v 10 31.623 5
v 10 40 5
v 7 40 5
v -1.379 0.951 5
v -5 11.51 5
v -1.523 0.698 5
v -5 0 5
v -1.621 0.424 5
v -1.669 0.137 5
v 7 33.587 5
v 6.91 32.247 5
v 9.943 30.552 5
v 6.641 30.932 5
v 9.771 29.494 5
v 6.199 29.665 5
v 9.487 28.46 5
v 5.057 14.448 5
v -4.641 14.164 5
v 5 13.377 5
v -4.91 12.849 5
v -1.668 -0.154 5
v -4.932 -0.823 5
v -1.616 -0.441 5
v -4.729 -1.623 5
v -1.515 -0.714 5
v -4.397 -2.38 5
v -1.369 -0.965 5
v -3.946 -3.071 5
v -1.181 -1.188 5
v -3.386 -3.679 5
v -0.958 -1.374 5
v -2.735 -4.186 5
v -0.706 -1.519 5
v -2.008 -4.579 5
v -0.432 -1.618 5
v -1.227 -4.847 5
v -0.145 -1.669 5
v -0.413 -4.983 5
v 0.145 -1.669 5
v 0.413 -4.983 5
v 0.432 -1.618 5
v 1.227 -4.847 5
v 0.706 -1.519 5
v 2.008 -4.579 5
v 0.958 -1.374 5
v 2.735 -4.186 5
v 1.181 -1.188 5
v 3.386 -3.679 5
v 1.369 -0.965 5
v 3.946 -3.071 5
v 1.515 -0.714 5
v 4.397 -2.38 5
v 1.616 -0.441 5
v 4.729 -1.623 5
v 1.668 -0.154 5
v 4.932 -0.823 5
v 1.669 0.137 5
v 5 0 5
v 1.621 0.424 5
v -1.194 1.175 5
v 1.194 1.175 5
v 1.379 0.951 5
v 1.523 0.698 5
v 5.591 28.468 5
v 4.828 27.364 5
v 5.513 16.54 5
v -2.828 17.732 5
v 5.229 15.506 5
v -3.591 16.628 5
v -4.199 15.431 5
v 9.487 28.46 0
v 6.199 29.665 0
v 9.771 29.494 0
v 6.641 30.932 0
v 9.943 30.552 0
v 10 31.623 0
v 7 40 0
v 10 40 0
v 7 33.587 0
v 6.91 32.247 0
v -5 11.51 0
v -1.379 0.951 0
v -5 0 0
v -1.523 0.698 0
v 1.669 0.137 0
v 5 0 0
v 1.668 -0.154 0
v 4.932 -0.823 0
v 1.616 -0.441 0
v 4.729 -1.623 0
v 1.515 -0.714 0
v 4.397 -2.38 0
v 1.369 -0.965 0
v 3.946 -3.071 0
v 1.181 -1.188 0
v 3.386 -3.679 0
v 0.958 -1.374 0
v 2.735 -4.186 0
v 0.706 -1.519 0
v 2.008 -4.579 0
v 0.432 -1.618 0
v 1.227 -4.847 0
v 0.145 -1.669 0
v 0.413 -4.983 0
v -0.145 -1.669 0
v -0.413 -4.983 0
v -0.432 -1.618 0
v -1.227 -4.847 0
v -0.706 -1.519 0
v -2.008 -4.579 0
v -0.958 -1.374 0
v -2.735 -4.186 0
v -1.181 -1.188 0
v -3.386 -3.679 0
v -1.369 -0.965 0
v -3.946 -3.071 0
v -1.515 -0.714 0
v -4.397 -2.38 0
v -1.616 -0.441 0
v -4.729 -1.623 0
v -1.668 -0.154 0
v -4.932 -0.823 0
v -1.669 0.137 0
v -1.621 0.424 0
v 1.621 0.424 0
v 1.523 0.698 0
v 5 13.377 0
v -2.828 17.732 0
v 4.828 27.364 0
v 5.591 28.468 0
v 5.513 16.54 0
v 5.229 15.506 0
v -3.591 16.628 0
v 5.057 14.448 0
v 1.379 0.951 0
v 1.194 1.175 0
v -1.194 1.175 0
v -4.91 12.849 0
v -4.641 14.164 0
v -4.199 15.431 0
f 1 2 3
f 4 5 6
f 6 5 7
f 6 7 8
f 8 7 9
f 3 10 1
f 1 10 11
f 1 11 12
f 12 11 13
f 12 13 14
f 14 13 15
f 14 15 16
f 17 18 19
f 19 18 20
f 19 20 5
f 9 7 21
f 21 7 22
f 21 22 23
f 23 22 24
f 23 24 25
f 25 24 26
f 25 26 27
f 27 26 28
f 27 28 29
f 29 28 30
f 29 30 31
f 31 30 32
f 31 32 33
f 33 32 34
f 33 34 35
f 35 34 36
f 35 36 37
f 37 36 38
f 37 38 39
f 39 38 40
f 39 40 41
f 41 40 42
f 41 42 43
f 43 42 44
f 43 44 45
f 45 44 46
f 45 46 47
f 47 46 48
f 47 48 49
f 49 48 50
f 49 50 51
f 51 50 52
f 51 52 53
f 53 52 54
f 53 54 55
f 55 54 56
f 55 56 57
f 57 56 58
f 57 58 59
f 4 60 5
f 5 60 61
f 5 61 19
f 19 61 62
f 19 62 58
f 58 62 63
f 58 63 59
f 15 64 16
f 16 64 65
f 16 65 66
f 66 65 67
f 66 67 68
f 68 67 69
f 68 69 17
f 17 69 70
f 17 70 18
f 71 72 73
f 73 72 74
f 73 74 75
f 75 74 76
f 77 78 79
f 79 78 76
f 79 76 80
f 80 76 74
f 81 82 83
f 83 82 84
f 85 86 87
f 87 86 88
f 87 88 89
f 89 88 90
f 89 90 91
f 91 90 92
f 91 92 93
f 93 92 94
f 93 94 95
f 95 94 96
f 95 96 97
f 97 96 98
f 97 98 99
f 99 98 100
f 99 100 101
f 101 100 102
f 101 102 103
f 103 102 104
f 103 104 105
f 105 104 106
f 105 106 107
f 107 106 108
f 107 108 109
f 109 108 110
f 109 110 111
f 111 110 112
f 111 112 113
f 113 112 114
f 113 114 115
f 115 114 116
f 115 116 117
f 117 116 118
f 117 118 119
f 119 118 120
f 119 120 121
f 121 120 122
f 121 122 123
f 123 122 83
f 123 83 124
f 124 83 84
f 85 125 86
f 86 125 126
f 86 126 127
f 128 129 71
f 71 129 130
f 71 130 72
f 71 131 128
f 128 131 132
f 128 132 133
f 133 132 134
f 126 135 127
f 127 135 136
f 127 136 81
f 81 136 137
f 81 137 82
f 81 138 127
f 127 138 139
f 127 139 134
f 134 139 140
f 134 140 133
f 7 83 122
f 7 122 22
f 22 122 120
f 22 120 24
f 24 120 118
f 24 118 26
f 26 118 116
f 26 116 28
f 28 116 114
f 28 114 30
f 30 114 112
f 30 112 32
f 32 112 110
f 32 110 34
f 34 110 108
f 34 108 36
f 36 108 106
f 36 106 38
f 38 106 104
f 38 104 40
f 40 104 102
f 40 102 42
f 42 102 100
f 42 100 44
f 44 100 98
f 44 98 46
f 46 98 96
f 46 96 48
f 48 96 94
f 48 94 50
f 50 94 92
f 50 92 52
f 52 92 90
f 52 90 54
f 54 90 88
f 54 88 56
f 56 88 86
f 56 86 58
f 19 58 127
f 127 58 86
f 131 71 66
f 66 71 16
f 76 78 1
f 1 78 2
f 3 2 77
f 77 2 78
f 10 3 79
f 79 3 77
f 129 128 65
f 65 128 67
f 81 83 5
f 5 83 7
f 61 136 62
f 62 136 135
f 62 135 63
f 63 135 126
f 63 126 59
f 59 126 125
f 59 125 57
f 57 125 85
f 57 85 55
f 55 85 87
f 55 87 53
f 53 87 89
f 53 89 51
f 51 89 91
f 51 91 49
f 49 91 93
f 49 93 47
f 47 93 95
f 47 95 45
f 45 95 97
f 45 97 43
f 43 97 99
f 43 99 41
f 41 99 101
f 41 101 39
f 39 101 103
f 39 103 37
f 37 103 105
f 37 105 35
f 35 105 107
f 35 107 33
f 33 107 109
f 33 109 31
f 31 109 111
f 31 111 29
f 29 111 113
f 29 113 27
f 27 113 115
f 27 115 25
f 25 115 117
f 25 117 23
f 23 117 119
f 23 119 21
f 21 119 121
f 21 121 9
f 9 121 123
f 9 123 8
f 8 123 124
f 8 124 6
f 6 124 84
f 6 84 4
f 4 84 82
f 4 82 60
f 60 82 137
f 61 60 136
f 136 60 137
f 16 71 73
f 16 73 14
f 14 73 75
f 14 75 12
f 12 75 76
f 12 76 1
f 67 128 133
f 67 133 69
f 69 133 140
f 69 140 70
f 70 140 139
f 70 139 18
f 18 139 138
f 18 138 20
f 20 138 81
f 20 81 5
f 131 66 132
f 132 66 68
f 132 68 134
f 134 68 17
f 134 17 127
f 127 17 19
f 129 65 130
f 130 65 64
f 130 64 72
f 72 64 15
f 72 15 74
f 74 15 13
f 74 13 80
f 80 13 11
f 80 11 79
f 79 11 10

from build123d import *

# Parameters (mm, degrees)
BOSS_EXTRUDE1_DEPTH = 5
FILLET1_R           = 10
FILLET2_R           = 10


with BuildPart() as part:
    # Sketch1 → Boss-Extrude1 (new body)
    with BuildSketch(Plane.XY):
        with BuildLine():
            Line((-5, 0), (-5, 15))
            Line((-5, 15), (7, 30.096250941))
            Line((7, 30.096250941), (7, 40))
            Line((7, 40), (10, 40))
            Line((10, 40), (10, 30))
            Line((10, 30), (5, 15))
            Line((5, 15), (5, 0))
            ThreePointArc((5, 0), (0, -5), (-5, 0))
        make_face()
        with BuildLine():
            Line((-1.193733639, 1.175), (1.193733639, 1.175))
            ThreePointArc((1.193733639, 1.175), (0, -1.675), (-1.193733639, 1.175))
        make_face(mode=Mode.SUBTRACT)
    extrude(amount=BOSS_EXTRUDE1_DEPTH)

    # Fillet1
    fillet1_edges = [part.edges().sort_by_distance(p)[0] for p in [
        (-5, 15, 2.5),
        (10, 30, 2.5),
    ]]
    fillet(fillet1_edges, radius=FILLET1_R)

    # Fillet2
    fillet2_edges = [part.edges().sort_by_distance(p)[0] for p in [
        (7, 30.096250941, 2.5),
        (5, 15, 2.5),
    ]]
    fillet(fillet2_edges, radius=FILLET2_R)


solid = part.part
